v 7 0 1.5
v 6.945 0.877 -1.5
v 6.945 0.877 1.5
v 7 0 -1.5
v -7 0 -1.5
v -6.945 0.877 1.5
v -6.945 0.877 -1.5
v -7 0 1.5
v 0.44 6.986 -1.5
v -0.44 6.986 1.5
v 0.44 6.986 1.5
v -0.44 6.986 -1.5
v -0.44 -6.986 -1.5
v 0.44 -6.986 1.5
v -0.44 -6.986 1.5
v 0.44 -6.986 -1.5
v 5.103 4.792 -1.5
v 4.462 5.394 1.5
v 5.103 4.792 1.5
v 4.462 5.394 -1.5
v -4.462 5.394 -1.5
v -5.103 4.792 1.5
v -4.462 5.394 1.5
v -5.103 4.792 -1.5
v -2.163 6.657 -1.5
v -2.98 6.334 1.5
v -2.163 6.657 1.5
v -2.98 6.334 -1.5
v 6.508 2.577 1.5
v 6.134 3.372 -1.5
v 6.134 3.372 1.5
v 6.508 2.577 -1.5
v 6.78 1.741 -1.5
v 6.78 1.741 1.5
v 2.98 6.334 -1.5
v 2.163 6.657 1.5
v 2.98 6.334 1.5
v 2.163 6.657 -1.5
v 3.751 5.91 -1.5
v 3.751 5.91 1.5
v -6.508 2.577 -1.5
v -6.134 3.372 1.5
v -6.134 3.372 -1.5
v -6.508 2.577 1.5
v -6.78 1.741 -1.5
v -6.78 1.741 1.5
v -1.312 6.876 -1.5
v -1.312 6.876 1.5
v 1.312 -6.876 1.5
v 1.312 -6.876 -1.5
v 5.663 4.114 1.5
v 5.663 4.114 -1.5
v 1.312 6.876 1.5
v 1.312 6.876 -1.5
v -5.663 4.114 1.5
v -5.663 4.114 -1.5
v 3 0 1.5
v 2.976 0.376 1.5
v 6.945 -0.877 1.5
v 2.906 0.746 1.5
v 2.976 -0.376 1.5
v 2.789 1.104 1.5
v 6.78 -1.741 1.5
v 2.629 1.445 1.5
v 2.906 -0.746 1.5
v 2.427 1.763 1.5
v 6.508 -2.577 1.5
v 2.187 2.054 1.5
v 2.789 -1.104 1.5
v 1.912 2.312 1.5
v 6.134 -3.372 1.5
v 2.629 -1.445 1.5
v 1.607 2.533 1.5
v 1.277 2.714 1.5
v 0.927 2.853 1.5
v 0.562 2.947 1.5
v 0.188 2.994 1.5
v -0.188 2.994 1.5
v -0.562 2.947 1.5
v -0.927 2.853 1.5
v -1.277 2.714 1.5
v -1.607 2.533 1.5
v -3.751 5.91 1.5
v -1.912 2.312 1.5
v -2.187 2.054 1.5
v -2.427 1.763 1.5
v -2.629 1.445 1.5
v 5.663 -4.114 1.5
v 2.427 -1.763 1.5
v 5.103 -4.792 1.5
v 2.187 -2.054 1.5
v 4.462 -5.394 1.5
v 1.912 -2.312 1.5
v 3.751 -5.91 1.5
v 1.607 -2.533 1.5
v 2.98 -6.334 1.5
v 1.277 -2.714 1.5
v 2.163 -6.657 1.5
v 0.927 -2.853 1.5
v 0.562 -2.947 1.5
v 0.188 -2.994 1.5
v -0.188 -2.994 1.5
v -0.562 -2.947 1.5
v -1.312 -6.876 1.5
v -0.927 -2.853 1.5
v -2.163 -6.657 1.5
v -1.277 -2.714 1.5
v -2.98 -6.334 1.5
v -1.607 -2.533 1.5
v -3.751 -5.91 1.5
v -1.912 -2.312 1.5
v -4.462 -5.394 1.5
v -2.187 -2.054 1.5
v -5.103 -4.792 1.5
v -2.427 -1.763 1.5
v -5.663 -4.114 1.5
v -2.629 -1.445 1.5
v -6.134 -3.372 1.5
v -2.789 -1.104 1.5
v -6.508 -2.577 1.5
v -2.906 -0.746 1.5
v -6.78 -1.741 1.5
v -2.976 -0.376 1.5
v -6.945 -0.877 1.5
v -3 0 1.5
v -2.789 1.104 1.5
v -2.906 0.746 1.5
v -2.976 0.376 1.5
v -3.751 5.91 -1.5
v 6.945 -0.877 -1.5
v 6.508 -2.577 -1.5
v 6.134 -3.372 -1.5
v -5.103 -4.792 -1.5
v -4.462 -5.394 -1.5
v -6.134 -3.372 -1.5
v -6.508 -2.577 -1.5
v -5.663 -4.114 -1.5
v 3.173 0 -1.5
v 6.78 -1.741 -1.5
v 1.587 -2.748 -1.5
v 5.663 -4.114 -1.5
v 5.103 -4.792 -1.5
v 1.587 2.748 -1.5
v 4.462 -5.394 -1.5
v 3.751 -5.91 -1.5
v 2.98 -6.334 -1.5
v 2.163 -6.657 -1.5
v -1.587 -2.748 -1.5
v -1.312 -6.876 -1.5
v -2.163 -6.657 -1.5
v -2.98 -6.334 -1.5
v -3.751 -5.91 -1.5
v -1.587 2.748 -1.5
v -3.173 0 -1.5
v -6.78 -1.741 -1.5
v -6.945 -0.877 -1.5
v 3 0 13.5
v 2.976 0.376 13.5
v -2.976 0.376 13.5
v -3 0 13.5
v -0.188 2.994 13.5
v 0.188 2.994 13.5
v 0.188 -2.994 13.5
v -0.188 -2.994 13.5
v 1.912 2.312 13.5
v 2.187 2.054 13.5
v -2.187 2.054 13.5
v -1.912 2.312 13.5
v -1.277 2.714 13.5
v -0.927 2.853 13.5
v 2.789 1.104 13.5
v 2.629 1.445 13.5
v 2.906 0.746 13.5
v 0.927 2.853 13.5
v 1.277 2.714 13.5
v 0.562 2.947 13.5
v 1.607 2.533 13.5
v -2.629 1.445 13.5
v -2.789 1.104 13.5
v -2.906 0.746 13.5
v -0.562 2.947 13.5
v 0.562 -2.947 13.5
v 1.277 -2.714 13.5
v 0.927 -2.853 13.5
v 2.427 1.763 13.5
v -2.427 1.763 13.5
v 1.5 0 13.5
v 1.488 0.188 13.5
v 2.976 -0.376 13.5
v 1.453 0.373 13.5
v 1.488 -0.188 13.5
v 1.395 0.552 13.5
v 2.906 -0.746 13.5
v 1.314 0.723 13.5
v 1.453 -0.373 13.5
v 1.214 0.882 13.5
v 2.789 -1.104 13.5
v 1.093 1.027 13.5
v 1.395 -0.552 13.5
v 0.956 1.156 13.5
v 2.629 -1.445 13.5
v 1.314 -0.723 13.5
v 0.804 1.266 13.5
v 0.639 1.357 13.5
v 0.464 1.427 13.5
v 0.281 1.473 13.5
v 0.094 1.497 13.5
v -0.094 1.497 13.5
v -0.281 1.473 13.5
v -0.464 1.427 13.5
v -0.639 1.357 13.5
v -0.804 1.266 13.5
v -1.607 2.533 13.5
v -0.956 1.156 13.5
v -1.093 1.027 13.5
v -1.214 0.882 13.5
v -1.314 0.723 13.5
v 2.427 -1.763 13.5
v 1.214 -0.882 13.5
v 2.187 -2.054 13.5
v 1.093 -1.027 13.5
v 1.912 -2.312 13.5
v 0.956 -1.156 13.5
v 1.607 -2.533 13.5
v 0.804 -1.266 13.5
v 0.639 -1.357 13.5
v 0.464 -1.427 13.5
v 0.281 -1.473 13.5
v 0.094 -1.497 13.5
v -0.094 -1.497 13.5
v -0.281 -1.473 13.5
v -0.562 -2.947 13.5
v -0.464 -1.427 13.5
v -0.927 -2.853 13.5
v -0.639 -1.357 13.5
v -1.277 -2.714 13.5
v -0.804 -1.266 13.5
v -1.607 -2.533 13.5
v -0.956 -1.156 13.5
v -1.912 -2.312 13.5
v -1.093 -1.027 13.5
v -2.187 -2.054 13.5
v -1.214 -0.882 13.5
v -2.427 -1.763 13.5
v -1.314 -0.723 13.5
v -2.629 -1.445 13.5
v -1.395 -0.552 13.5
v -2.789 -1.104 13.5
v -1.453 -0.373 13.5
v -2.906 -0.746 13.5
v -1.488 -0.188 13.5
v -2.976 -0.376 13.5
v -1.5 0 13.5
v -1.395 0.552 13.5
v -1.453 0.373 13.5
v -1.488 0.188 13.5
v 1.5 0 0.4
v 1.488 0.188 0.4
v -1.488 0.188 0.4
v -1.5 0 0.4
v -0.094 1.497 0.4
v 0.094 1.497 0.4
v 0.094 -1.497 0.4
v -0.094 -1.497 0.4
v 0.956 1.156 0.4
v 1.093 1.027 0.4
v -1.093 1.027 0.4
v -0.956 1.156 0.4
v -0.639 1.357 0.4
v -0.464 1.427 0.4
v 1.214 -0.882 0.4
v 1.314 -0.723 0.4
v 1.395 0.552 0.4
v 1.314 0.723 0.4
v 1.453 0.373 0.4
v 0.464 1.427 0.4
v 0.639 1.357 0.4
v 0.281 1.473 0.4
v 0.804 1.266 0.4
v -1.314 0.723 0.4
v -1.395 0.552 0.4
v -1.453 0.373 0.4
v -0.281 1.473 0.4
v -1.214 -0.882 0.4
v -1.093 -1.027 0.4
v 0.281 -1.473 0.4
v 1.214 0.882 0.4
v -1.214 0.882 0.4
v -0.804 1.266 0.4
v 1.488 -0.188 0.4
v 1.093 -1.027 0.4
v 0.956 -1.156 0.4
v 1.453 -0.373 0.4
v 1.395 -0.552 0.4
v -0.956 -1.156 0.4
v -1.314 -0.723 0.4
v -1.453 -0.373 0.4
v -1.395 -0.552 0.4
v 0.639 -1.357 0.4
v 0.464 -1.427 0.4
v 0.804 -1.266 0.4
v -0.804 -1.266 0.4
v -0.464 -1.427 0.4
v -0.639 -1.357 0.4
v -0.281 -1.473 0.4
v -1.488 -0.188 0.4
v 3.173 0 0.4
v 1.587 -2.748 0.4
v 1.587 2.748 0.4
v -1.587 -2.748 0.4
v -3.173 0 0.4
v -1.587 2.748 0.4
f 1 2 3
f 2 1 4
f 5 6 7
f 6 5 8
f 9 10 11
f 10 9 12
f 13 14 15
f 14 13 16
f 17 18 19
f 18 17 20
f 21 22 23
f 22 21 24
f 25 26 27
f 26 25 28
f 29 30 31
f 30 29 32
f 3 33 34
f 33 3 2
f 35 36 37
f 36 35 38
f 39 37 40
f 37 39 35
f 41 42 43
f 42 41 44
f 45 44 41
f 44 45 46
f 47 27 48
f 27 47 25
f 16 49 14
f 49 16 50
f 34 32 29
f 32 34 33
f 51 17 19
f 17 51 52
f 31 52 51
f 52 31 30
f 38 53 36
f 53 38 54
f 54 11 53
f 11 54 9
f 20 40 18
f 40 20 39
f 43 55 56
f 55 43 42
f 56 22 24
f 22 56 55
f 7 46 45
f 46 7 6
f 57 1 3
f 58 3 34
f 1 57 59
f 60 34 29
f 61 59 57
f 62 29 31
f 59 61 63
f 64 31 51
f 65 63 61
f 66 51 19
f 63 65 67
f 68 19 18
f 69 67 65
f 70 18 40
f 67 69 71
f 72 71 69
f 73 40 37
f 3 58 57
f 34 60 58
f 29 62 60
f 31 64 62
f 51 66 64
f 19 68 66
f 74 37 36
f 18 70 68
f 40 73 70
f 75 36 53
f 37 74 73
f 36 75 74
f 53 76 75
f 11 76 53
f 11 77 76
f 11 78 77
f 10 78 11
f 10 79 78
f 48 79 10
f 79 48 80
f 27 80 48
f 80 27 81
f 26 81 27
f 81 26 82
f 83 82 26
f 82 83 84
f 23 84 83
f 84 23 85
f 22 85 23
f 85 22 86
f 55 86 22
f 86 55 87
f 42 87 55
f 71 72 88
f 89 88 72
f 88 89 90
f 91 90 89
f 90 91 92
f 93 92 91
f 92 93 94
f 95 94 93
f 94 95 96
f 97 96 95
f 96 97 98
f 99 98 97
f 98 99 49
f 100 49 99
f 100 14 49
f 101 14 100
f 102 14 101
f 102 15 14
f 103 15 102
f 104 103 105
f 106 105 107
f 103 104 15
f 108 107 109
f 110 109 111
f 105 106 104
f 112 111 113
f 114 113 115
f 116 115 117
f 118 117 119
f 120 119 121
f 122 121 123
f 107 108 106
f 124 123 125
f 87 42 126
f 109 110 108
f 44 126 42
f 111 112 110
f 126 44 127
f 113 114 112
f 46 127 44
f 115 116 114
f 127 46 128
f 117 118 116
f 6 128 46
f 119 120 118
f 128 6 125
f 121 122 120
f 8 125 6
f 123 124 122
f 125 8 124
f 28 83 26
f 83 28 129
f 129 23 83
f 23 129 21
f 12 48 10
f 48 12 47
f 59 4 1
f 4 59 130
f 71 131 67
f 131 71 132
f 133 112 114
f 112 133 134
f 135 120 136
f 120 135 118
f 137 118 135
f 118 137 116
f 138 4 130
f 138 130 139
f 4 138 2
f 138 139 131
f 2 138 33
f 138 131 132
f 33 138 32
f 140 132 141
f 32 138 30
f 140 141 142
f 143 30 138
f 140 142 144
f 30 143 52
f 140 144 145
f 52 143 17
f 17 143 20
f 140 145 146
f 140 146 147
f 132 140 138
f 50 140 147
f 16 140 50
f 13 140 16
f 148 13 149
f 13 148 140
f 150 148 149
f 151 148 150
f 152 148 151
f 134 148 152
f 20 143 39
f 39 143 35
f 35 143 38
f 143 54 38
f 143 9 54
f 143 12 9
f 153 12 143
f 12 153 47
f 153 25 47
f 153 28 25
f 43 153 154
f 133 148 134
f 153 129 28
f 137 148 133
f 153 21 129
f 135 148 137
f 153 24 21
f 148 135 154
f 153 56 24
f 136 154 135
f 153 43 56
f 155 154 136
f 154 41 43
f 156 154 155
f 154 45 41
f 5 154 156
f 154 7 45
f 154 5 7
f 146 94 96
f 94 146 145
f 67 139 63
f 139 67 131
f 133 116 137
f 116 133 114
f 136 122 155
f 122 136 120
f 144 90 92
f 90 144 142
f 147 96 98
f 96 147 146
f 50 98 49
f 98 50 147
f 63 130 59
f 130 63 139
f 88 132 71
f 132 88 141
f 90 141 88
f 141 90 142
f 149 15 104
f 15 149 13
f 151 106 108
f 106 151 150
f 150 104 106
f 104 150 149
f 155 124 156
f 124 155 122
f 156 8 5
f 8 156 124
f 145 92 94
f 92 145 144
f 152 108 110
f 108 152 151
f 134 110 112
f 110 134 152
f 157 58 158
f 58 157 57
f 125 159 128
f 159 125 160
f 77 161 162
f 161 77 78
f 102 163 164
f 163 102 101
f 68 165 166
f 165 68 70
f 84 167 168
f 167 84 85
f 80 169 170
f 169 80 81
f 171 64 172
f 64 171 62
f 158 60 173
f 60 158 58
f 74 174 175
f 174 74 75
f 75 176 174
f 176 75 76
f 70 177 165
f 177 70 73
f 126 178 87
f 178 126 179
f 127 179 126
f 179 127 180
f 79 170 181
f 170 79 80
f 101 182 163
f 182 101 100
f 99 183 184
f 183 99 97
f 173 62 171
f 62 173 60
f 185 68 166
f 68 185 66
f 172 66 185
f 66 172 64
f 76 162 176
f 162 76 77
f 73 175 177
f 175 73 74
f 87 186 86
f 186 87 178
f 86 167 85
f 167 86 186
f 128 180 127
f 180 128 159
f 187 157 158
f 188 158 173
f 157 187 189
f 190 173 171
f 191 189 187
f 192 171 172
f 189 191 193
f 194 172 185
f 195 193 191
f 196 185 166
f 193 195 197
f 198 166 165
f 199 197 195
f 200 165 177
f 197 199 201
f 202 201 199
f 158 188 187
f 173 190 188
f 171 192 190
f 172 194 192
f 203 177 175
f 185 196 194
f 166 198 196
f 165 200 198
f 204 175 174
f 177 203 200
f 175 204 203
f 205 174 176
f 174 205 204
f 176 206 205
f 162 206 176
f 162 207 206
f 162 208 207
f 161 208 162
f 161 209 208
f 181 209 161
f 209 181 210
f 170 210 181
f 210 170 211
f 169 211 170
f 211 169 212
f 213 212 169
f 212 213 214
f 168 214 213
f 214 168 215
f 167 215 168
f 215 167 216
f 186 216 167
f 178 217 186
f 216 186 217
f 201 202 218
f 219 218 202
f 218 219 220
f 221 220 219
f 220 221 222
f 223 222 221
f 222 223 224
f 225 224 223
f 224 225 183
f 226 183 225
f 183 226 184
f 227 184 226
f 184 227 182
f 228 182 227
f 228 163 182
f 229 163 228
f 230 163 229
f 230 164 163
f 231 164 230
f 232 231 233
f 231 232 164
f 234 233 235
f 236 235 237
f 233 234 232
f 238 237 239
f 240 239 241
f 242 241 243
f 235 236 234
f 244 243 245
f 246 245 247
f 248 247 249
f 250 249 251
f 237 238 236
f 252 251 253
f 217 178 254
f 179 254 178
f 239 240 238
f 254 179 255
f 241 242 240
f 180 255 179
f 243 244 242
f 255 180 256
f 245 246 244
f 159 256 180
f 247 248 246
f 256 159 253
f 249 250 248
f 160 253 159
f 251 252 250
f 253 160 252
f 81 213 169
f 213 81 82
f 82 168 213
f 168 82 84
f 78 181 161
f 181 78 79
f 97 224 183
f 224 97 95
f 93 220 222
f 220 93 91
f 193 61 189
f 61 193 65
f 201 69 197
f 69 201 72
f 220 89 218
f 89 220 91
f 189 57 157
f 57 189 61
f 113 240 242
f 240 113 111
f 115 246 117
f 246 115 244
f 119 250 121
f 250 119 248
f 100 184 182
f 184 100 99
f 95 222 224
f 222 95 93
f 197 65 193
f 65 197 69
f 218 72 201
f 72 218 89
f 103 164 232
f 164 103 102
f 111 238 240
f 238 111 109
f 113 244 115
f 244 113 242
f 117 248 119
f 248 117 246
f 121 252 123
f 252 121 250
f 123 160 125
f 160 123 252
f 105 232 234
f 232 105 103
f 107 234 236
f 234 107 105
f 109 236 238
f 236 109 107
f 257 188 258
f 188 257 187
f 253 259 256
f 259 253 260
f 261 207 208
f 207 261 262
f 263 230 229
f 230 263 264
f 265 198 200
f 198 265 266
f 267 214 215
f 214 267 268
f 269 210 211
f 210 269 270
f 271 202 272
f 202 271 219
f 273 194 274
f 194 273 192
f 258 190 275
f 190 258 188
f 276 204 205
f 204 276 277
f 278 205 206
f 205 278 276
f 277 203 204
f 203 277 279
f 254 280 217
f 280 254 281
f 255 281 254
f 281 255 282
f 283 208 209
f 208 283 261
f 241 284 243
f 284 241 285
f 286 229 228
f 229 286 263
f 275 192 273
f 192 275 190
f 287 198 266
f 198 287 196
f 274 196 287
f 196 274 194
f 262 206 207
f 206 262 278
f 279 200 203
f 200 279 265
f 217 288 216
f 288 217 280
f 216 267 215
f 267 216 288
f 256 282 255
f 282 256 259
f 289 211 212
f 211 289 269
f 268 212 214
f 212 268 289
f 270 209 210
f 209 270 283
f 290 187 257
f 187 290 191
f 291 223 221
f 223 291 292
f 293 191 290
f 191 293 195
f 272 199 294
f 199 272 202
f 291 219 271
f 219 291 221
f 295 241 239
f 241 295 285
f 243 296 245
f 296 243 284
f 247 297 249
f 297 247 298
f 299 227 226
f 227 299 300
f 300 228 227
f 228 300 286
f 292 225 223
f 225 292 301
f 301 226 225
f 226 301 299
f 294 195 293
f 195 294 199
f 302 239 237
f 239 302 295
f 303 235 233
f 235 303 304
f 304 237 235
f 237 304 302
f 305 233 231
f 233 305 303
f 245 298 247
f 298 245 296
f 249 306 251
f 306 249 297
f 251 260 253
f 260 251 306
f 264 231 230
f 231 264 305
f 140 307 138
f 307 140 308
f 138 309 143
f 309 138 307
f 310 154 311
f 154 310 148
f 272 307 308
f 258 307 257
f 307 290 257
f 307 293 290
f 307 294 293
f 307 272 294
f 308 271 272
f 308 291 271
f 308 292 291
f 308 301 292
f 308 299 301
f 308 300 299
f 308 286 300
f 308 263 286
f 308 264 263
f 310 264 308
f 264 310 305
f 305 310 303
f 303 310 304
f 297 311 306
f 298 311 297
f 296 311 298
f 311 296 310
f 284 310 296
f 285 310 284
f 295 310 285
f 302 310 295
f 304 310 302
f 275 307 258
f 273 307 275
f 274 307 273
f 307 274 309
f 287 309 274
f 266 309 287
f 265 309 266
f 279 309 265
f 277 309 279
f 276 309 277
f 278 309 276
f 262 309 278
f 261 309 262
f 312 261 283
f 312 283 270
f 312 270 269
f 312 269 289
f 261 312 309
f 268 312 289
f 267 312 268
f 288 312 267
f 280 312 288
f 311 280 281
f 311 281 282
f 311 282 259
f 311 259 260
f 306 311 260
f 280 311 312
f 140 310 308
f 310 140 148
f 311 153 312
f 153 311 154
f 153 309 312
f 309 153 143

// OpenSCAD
$fn = 50;


difference() {
	union() {
		translate(v = [0, 0, -1.5000000000]) {
			rotate(a = [0, 0, 0]) {
				cylinder(h = 3, r = 7.0000000000);
			}
		}
		translate(v = [0, 0, -1.5000000000]) {
			rotate(a = [0, 0, 0]) {
				cylinder(h = 15, r = 3.0000000000);
			}
		}
	}
	union() {
		translate(v = [0, 0, -125.0000000000]) {
			rotate(a = [0, 0, 0]) {
				cylinder(h = 250, r = 1.5000000000);
			}
		}
		translate(v = [0, 0, -2.1000000000]) {
			rotate(a = [0, 0, 0]) {
				#translate(v = [0, 0, 0]) {
					rotate(a = [0, 0, 0]) {
						linear_extrude(height = 2.5000000000) {
							polygon(points = [[3.1735000000, 0.0000000000], [1.5867500000, 2.7483316189], [-1.5867500000, 2.7483316189], [-3.1735000000, 0.0000000000], [-1.5867500000, -2.7483316189], [1.5867500000, -2.7483316189]]);
						}
					}
				}
			}
		}
	}
}
